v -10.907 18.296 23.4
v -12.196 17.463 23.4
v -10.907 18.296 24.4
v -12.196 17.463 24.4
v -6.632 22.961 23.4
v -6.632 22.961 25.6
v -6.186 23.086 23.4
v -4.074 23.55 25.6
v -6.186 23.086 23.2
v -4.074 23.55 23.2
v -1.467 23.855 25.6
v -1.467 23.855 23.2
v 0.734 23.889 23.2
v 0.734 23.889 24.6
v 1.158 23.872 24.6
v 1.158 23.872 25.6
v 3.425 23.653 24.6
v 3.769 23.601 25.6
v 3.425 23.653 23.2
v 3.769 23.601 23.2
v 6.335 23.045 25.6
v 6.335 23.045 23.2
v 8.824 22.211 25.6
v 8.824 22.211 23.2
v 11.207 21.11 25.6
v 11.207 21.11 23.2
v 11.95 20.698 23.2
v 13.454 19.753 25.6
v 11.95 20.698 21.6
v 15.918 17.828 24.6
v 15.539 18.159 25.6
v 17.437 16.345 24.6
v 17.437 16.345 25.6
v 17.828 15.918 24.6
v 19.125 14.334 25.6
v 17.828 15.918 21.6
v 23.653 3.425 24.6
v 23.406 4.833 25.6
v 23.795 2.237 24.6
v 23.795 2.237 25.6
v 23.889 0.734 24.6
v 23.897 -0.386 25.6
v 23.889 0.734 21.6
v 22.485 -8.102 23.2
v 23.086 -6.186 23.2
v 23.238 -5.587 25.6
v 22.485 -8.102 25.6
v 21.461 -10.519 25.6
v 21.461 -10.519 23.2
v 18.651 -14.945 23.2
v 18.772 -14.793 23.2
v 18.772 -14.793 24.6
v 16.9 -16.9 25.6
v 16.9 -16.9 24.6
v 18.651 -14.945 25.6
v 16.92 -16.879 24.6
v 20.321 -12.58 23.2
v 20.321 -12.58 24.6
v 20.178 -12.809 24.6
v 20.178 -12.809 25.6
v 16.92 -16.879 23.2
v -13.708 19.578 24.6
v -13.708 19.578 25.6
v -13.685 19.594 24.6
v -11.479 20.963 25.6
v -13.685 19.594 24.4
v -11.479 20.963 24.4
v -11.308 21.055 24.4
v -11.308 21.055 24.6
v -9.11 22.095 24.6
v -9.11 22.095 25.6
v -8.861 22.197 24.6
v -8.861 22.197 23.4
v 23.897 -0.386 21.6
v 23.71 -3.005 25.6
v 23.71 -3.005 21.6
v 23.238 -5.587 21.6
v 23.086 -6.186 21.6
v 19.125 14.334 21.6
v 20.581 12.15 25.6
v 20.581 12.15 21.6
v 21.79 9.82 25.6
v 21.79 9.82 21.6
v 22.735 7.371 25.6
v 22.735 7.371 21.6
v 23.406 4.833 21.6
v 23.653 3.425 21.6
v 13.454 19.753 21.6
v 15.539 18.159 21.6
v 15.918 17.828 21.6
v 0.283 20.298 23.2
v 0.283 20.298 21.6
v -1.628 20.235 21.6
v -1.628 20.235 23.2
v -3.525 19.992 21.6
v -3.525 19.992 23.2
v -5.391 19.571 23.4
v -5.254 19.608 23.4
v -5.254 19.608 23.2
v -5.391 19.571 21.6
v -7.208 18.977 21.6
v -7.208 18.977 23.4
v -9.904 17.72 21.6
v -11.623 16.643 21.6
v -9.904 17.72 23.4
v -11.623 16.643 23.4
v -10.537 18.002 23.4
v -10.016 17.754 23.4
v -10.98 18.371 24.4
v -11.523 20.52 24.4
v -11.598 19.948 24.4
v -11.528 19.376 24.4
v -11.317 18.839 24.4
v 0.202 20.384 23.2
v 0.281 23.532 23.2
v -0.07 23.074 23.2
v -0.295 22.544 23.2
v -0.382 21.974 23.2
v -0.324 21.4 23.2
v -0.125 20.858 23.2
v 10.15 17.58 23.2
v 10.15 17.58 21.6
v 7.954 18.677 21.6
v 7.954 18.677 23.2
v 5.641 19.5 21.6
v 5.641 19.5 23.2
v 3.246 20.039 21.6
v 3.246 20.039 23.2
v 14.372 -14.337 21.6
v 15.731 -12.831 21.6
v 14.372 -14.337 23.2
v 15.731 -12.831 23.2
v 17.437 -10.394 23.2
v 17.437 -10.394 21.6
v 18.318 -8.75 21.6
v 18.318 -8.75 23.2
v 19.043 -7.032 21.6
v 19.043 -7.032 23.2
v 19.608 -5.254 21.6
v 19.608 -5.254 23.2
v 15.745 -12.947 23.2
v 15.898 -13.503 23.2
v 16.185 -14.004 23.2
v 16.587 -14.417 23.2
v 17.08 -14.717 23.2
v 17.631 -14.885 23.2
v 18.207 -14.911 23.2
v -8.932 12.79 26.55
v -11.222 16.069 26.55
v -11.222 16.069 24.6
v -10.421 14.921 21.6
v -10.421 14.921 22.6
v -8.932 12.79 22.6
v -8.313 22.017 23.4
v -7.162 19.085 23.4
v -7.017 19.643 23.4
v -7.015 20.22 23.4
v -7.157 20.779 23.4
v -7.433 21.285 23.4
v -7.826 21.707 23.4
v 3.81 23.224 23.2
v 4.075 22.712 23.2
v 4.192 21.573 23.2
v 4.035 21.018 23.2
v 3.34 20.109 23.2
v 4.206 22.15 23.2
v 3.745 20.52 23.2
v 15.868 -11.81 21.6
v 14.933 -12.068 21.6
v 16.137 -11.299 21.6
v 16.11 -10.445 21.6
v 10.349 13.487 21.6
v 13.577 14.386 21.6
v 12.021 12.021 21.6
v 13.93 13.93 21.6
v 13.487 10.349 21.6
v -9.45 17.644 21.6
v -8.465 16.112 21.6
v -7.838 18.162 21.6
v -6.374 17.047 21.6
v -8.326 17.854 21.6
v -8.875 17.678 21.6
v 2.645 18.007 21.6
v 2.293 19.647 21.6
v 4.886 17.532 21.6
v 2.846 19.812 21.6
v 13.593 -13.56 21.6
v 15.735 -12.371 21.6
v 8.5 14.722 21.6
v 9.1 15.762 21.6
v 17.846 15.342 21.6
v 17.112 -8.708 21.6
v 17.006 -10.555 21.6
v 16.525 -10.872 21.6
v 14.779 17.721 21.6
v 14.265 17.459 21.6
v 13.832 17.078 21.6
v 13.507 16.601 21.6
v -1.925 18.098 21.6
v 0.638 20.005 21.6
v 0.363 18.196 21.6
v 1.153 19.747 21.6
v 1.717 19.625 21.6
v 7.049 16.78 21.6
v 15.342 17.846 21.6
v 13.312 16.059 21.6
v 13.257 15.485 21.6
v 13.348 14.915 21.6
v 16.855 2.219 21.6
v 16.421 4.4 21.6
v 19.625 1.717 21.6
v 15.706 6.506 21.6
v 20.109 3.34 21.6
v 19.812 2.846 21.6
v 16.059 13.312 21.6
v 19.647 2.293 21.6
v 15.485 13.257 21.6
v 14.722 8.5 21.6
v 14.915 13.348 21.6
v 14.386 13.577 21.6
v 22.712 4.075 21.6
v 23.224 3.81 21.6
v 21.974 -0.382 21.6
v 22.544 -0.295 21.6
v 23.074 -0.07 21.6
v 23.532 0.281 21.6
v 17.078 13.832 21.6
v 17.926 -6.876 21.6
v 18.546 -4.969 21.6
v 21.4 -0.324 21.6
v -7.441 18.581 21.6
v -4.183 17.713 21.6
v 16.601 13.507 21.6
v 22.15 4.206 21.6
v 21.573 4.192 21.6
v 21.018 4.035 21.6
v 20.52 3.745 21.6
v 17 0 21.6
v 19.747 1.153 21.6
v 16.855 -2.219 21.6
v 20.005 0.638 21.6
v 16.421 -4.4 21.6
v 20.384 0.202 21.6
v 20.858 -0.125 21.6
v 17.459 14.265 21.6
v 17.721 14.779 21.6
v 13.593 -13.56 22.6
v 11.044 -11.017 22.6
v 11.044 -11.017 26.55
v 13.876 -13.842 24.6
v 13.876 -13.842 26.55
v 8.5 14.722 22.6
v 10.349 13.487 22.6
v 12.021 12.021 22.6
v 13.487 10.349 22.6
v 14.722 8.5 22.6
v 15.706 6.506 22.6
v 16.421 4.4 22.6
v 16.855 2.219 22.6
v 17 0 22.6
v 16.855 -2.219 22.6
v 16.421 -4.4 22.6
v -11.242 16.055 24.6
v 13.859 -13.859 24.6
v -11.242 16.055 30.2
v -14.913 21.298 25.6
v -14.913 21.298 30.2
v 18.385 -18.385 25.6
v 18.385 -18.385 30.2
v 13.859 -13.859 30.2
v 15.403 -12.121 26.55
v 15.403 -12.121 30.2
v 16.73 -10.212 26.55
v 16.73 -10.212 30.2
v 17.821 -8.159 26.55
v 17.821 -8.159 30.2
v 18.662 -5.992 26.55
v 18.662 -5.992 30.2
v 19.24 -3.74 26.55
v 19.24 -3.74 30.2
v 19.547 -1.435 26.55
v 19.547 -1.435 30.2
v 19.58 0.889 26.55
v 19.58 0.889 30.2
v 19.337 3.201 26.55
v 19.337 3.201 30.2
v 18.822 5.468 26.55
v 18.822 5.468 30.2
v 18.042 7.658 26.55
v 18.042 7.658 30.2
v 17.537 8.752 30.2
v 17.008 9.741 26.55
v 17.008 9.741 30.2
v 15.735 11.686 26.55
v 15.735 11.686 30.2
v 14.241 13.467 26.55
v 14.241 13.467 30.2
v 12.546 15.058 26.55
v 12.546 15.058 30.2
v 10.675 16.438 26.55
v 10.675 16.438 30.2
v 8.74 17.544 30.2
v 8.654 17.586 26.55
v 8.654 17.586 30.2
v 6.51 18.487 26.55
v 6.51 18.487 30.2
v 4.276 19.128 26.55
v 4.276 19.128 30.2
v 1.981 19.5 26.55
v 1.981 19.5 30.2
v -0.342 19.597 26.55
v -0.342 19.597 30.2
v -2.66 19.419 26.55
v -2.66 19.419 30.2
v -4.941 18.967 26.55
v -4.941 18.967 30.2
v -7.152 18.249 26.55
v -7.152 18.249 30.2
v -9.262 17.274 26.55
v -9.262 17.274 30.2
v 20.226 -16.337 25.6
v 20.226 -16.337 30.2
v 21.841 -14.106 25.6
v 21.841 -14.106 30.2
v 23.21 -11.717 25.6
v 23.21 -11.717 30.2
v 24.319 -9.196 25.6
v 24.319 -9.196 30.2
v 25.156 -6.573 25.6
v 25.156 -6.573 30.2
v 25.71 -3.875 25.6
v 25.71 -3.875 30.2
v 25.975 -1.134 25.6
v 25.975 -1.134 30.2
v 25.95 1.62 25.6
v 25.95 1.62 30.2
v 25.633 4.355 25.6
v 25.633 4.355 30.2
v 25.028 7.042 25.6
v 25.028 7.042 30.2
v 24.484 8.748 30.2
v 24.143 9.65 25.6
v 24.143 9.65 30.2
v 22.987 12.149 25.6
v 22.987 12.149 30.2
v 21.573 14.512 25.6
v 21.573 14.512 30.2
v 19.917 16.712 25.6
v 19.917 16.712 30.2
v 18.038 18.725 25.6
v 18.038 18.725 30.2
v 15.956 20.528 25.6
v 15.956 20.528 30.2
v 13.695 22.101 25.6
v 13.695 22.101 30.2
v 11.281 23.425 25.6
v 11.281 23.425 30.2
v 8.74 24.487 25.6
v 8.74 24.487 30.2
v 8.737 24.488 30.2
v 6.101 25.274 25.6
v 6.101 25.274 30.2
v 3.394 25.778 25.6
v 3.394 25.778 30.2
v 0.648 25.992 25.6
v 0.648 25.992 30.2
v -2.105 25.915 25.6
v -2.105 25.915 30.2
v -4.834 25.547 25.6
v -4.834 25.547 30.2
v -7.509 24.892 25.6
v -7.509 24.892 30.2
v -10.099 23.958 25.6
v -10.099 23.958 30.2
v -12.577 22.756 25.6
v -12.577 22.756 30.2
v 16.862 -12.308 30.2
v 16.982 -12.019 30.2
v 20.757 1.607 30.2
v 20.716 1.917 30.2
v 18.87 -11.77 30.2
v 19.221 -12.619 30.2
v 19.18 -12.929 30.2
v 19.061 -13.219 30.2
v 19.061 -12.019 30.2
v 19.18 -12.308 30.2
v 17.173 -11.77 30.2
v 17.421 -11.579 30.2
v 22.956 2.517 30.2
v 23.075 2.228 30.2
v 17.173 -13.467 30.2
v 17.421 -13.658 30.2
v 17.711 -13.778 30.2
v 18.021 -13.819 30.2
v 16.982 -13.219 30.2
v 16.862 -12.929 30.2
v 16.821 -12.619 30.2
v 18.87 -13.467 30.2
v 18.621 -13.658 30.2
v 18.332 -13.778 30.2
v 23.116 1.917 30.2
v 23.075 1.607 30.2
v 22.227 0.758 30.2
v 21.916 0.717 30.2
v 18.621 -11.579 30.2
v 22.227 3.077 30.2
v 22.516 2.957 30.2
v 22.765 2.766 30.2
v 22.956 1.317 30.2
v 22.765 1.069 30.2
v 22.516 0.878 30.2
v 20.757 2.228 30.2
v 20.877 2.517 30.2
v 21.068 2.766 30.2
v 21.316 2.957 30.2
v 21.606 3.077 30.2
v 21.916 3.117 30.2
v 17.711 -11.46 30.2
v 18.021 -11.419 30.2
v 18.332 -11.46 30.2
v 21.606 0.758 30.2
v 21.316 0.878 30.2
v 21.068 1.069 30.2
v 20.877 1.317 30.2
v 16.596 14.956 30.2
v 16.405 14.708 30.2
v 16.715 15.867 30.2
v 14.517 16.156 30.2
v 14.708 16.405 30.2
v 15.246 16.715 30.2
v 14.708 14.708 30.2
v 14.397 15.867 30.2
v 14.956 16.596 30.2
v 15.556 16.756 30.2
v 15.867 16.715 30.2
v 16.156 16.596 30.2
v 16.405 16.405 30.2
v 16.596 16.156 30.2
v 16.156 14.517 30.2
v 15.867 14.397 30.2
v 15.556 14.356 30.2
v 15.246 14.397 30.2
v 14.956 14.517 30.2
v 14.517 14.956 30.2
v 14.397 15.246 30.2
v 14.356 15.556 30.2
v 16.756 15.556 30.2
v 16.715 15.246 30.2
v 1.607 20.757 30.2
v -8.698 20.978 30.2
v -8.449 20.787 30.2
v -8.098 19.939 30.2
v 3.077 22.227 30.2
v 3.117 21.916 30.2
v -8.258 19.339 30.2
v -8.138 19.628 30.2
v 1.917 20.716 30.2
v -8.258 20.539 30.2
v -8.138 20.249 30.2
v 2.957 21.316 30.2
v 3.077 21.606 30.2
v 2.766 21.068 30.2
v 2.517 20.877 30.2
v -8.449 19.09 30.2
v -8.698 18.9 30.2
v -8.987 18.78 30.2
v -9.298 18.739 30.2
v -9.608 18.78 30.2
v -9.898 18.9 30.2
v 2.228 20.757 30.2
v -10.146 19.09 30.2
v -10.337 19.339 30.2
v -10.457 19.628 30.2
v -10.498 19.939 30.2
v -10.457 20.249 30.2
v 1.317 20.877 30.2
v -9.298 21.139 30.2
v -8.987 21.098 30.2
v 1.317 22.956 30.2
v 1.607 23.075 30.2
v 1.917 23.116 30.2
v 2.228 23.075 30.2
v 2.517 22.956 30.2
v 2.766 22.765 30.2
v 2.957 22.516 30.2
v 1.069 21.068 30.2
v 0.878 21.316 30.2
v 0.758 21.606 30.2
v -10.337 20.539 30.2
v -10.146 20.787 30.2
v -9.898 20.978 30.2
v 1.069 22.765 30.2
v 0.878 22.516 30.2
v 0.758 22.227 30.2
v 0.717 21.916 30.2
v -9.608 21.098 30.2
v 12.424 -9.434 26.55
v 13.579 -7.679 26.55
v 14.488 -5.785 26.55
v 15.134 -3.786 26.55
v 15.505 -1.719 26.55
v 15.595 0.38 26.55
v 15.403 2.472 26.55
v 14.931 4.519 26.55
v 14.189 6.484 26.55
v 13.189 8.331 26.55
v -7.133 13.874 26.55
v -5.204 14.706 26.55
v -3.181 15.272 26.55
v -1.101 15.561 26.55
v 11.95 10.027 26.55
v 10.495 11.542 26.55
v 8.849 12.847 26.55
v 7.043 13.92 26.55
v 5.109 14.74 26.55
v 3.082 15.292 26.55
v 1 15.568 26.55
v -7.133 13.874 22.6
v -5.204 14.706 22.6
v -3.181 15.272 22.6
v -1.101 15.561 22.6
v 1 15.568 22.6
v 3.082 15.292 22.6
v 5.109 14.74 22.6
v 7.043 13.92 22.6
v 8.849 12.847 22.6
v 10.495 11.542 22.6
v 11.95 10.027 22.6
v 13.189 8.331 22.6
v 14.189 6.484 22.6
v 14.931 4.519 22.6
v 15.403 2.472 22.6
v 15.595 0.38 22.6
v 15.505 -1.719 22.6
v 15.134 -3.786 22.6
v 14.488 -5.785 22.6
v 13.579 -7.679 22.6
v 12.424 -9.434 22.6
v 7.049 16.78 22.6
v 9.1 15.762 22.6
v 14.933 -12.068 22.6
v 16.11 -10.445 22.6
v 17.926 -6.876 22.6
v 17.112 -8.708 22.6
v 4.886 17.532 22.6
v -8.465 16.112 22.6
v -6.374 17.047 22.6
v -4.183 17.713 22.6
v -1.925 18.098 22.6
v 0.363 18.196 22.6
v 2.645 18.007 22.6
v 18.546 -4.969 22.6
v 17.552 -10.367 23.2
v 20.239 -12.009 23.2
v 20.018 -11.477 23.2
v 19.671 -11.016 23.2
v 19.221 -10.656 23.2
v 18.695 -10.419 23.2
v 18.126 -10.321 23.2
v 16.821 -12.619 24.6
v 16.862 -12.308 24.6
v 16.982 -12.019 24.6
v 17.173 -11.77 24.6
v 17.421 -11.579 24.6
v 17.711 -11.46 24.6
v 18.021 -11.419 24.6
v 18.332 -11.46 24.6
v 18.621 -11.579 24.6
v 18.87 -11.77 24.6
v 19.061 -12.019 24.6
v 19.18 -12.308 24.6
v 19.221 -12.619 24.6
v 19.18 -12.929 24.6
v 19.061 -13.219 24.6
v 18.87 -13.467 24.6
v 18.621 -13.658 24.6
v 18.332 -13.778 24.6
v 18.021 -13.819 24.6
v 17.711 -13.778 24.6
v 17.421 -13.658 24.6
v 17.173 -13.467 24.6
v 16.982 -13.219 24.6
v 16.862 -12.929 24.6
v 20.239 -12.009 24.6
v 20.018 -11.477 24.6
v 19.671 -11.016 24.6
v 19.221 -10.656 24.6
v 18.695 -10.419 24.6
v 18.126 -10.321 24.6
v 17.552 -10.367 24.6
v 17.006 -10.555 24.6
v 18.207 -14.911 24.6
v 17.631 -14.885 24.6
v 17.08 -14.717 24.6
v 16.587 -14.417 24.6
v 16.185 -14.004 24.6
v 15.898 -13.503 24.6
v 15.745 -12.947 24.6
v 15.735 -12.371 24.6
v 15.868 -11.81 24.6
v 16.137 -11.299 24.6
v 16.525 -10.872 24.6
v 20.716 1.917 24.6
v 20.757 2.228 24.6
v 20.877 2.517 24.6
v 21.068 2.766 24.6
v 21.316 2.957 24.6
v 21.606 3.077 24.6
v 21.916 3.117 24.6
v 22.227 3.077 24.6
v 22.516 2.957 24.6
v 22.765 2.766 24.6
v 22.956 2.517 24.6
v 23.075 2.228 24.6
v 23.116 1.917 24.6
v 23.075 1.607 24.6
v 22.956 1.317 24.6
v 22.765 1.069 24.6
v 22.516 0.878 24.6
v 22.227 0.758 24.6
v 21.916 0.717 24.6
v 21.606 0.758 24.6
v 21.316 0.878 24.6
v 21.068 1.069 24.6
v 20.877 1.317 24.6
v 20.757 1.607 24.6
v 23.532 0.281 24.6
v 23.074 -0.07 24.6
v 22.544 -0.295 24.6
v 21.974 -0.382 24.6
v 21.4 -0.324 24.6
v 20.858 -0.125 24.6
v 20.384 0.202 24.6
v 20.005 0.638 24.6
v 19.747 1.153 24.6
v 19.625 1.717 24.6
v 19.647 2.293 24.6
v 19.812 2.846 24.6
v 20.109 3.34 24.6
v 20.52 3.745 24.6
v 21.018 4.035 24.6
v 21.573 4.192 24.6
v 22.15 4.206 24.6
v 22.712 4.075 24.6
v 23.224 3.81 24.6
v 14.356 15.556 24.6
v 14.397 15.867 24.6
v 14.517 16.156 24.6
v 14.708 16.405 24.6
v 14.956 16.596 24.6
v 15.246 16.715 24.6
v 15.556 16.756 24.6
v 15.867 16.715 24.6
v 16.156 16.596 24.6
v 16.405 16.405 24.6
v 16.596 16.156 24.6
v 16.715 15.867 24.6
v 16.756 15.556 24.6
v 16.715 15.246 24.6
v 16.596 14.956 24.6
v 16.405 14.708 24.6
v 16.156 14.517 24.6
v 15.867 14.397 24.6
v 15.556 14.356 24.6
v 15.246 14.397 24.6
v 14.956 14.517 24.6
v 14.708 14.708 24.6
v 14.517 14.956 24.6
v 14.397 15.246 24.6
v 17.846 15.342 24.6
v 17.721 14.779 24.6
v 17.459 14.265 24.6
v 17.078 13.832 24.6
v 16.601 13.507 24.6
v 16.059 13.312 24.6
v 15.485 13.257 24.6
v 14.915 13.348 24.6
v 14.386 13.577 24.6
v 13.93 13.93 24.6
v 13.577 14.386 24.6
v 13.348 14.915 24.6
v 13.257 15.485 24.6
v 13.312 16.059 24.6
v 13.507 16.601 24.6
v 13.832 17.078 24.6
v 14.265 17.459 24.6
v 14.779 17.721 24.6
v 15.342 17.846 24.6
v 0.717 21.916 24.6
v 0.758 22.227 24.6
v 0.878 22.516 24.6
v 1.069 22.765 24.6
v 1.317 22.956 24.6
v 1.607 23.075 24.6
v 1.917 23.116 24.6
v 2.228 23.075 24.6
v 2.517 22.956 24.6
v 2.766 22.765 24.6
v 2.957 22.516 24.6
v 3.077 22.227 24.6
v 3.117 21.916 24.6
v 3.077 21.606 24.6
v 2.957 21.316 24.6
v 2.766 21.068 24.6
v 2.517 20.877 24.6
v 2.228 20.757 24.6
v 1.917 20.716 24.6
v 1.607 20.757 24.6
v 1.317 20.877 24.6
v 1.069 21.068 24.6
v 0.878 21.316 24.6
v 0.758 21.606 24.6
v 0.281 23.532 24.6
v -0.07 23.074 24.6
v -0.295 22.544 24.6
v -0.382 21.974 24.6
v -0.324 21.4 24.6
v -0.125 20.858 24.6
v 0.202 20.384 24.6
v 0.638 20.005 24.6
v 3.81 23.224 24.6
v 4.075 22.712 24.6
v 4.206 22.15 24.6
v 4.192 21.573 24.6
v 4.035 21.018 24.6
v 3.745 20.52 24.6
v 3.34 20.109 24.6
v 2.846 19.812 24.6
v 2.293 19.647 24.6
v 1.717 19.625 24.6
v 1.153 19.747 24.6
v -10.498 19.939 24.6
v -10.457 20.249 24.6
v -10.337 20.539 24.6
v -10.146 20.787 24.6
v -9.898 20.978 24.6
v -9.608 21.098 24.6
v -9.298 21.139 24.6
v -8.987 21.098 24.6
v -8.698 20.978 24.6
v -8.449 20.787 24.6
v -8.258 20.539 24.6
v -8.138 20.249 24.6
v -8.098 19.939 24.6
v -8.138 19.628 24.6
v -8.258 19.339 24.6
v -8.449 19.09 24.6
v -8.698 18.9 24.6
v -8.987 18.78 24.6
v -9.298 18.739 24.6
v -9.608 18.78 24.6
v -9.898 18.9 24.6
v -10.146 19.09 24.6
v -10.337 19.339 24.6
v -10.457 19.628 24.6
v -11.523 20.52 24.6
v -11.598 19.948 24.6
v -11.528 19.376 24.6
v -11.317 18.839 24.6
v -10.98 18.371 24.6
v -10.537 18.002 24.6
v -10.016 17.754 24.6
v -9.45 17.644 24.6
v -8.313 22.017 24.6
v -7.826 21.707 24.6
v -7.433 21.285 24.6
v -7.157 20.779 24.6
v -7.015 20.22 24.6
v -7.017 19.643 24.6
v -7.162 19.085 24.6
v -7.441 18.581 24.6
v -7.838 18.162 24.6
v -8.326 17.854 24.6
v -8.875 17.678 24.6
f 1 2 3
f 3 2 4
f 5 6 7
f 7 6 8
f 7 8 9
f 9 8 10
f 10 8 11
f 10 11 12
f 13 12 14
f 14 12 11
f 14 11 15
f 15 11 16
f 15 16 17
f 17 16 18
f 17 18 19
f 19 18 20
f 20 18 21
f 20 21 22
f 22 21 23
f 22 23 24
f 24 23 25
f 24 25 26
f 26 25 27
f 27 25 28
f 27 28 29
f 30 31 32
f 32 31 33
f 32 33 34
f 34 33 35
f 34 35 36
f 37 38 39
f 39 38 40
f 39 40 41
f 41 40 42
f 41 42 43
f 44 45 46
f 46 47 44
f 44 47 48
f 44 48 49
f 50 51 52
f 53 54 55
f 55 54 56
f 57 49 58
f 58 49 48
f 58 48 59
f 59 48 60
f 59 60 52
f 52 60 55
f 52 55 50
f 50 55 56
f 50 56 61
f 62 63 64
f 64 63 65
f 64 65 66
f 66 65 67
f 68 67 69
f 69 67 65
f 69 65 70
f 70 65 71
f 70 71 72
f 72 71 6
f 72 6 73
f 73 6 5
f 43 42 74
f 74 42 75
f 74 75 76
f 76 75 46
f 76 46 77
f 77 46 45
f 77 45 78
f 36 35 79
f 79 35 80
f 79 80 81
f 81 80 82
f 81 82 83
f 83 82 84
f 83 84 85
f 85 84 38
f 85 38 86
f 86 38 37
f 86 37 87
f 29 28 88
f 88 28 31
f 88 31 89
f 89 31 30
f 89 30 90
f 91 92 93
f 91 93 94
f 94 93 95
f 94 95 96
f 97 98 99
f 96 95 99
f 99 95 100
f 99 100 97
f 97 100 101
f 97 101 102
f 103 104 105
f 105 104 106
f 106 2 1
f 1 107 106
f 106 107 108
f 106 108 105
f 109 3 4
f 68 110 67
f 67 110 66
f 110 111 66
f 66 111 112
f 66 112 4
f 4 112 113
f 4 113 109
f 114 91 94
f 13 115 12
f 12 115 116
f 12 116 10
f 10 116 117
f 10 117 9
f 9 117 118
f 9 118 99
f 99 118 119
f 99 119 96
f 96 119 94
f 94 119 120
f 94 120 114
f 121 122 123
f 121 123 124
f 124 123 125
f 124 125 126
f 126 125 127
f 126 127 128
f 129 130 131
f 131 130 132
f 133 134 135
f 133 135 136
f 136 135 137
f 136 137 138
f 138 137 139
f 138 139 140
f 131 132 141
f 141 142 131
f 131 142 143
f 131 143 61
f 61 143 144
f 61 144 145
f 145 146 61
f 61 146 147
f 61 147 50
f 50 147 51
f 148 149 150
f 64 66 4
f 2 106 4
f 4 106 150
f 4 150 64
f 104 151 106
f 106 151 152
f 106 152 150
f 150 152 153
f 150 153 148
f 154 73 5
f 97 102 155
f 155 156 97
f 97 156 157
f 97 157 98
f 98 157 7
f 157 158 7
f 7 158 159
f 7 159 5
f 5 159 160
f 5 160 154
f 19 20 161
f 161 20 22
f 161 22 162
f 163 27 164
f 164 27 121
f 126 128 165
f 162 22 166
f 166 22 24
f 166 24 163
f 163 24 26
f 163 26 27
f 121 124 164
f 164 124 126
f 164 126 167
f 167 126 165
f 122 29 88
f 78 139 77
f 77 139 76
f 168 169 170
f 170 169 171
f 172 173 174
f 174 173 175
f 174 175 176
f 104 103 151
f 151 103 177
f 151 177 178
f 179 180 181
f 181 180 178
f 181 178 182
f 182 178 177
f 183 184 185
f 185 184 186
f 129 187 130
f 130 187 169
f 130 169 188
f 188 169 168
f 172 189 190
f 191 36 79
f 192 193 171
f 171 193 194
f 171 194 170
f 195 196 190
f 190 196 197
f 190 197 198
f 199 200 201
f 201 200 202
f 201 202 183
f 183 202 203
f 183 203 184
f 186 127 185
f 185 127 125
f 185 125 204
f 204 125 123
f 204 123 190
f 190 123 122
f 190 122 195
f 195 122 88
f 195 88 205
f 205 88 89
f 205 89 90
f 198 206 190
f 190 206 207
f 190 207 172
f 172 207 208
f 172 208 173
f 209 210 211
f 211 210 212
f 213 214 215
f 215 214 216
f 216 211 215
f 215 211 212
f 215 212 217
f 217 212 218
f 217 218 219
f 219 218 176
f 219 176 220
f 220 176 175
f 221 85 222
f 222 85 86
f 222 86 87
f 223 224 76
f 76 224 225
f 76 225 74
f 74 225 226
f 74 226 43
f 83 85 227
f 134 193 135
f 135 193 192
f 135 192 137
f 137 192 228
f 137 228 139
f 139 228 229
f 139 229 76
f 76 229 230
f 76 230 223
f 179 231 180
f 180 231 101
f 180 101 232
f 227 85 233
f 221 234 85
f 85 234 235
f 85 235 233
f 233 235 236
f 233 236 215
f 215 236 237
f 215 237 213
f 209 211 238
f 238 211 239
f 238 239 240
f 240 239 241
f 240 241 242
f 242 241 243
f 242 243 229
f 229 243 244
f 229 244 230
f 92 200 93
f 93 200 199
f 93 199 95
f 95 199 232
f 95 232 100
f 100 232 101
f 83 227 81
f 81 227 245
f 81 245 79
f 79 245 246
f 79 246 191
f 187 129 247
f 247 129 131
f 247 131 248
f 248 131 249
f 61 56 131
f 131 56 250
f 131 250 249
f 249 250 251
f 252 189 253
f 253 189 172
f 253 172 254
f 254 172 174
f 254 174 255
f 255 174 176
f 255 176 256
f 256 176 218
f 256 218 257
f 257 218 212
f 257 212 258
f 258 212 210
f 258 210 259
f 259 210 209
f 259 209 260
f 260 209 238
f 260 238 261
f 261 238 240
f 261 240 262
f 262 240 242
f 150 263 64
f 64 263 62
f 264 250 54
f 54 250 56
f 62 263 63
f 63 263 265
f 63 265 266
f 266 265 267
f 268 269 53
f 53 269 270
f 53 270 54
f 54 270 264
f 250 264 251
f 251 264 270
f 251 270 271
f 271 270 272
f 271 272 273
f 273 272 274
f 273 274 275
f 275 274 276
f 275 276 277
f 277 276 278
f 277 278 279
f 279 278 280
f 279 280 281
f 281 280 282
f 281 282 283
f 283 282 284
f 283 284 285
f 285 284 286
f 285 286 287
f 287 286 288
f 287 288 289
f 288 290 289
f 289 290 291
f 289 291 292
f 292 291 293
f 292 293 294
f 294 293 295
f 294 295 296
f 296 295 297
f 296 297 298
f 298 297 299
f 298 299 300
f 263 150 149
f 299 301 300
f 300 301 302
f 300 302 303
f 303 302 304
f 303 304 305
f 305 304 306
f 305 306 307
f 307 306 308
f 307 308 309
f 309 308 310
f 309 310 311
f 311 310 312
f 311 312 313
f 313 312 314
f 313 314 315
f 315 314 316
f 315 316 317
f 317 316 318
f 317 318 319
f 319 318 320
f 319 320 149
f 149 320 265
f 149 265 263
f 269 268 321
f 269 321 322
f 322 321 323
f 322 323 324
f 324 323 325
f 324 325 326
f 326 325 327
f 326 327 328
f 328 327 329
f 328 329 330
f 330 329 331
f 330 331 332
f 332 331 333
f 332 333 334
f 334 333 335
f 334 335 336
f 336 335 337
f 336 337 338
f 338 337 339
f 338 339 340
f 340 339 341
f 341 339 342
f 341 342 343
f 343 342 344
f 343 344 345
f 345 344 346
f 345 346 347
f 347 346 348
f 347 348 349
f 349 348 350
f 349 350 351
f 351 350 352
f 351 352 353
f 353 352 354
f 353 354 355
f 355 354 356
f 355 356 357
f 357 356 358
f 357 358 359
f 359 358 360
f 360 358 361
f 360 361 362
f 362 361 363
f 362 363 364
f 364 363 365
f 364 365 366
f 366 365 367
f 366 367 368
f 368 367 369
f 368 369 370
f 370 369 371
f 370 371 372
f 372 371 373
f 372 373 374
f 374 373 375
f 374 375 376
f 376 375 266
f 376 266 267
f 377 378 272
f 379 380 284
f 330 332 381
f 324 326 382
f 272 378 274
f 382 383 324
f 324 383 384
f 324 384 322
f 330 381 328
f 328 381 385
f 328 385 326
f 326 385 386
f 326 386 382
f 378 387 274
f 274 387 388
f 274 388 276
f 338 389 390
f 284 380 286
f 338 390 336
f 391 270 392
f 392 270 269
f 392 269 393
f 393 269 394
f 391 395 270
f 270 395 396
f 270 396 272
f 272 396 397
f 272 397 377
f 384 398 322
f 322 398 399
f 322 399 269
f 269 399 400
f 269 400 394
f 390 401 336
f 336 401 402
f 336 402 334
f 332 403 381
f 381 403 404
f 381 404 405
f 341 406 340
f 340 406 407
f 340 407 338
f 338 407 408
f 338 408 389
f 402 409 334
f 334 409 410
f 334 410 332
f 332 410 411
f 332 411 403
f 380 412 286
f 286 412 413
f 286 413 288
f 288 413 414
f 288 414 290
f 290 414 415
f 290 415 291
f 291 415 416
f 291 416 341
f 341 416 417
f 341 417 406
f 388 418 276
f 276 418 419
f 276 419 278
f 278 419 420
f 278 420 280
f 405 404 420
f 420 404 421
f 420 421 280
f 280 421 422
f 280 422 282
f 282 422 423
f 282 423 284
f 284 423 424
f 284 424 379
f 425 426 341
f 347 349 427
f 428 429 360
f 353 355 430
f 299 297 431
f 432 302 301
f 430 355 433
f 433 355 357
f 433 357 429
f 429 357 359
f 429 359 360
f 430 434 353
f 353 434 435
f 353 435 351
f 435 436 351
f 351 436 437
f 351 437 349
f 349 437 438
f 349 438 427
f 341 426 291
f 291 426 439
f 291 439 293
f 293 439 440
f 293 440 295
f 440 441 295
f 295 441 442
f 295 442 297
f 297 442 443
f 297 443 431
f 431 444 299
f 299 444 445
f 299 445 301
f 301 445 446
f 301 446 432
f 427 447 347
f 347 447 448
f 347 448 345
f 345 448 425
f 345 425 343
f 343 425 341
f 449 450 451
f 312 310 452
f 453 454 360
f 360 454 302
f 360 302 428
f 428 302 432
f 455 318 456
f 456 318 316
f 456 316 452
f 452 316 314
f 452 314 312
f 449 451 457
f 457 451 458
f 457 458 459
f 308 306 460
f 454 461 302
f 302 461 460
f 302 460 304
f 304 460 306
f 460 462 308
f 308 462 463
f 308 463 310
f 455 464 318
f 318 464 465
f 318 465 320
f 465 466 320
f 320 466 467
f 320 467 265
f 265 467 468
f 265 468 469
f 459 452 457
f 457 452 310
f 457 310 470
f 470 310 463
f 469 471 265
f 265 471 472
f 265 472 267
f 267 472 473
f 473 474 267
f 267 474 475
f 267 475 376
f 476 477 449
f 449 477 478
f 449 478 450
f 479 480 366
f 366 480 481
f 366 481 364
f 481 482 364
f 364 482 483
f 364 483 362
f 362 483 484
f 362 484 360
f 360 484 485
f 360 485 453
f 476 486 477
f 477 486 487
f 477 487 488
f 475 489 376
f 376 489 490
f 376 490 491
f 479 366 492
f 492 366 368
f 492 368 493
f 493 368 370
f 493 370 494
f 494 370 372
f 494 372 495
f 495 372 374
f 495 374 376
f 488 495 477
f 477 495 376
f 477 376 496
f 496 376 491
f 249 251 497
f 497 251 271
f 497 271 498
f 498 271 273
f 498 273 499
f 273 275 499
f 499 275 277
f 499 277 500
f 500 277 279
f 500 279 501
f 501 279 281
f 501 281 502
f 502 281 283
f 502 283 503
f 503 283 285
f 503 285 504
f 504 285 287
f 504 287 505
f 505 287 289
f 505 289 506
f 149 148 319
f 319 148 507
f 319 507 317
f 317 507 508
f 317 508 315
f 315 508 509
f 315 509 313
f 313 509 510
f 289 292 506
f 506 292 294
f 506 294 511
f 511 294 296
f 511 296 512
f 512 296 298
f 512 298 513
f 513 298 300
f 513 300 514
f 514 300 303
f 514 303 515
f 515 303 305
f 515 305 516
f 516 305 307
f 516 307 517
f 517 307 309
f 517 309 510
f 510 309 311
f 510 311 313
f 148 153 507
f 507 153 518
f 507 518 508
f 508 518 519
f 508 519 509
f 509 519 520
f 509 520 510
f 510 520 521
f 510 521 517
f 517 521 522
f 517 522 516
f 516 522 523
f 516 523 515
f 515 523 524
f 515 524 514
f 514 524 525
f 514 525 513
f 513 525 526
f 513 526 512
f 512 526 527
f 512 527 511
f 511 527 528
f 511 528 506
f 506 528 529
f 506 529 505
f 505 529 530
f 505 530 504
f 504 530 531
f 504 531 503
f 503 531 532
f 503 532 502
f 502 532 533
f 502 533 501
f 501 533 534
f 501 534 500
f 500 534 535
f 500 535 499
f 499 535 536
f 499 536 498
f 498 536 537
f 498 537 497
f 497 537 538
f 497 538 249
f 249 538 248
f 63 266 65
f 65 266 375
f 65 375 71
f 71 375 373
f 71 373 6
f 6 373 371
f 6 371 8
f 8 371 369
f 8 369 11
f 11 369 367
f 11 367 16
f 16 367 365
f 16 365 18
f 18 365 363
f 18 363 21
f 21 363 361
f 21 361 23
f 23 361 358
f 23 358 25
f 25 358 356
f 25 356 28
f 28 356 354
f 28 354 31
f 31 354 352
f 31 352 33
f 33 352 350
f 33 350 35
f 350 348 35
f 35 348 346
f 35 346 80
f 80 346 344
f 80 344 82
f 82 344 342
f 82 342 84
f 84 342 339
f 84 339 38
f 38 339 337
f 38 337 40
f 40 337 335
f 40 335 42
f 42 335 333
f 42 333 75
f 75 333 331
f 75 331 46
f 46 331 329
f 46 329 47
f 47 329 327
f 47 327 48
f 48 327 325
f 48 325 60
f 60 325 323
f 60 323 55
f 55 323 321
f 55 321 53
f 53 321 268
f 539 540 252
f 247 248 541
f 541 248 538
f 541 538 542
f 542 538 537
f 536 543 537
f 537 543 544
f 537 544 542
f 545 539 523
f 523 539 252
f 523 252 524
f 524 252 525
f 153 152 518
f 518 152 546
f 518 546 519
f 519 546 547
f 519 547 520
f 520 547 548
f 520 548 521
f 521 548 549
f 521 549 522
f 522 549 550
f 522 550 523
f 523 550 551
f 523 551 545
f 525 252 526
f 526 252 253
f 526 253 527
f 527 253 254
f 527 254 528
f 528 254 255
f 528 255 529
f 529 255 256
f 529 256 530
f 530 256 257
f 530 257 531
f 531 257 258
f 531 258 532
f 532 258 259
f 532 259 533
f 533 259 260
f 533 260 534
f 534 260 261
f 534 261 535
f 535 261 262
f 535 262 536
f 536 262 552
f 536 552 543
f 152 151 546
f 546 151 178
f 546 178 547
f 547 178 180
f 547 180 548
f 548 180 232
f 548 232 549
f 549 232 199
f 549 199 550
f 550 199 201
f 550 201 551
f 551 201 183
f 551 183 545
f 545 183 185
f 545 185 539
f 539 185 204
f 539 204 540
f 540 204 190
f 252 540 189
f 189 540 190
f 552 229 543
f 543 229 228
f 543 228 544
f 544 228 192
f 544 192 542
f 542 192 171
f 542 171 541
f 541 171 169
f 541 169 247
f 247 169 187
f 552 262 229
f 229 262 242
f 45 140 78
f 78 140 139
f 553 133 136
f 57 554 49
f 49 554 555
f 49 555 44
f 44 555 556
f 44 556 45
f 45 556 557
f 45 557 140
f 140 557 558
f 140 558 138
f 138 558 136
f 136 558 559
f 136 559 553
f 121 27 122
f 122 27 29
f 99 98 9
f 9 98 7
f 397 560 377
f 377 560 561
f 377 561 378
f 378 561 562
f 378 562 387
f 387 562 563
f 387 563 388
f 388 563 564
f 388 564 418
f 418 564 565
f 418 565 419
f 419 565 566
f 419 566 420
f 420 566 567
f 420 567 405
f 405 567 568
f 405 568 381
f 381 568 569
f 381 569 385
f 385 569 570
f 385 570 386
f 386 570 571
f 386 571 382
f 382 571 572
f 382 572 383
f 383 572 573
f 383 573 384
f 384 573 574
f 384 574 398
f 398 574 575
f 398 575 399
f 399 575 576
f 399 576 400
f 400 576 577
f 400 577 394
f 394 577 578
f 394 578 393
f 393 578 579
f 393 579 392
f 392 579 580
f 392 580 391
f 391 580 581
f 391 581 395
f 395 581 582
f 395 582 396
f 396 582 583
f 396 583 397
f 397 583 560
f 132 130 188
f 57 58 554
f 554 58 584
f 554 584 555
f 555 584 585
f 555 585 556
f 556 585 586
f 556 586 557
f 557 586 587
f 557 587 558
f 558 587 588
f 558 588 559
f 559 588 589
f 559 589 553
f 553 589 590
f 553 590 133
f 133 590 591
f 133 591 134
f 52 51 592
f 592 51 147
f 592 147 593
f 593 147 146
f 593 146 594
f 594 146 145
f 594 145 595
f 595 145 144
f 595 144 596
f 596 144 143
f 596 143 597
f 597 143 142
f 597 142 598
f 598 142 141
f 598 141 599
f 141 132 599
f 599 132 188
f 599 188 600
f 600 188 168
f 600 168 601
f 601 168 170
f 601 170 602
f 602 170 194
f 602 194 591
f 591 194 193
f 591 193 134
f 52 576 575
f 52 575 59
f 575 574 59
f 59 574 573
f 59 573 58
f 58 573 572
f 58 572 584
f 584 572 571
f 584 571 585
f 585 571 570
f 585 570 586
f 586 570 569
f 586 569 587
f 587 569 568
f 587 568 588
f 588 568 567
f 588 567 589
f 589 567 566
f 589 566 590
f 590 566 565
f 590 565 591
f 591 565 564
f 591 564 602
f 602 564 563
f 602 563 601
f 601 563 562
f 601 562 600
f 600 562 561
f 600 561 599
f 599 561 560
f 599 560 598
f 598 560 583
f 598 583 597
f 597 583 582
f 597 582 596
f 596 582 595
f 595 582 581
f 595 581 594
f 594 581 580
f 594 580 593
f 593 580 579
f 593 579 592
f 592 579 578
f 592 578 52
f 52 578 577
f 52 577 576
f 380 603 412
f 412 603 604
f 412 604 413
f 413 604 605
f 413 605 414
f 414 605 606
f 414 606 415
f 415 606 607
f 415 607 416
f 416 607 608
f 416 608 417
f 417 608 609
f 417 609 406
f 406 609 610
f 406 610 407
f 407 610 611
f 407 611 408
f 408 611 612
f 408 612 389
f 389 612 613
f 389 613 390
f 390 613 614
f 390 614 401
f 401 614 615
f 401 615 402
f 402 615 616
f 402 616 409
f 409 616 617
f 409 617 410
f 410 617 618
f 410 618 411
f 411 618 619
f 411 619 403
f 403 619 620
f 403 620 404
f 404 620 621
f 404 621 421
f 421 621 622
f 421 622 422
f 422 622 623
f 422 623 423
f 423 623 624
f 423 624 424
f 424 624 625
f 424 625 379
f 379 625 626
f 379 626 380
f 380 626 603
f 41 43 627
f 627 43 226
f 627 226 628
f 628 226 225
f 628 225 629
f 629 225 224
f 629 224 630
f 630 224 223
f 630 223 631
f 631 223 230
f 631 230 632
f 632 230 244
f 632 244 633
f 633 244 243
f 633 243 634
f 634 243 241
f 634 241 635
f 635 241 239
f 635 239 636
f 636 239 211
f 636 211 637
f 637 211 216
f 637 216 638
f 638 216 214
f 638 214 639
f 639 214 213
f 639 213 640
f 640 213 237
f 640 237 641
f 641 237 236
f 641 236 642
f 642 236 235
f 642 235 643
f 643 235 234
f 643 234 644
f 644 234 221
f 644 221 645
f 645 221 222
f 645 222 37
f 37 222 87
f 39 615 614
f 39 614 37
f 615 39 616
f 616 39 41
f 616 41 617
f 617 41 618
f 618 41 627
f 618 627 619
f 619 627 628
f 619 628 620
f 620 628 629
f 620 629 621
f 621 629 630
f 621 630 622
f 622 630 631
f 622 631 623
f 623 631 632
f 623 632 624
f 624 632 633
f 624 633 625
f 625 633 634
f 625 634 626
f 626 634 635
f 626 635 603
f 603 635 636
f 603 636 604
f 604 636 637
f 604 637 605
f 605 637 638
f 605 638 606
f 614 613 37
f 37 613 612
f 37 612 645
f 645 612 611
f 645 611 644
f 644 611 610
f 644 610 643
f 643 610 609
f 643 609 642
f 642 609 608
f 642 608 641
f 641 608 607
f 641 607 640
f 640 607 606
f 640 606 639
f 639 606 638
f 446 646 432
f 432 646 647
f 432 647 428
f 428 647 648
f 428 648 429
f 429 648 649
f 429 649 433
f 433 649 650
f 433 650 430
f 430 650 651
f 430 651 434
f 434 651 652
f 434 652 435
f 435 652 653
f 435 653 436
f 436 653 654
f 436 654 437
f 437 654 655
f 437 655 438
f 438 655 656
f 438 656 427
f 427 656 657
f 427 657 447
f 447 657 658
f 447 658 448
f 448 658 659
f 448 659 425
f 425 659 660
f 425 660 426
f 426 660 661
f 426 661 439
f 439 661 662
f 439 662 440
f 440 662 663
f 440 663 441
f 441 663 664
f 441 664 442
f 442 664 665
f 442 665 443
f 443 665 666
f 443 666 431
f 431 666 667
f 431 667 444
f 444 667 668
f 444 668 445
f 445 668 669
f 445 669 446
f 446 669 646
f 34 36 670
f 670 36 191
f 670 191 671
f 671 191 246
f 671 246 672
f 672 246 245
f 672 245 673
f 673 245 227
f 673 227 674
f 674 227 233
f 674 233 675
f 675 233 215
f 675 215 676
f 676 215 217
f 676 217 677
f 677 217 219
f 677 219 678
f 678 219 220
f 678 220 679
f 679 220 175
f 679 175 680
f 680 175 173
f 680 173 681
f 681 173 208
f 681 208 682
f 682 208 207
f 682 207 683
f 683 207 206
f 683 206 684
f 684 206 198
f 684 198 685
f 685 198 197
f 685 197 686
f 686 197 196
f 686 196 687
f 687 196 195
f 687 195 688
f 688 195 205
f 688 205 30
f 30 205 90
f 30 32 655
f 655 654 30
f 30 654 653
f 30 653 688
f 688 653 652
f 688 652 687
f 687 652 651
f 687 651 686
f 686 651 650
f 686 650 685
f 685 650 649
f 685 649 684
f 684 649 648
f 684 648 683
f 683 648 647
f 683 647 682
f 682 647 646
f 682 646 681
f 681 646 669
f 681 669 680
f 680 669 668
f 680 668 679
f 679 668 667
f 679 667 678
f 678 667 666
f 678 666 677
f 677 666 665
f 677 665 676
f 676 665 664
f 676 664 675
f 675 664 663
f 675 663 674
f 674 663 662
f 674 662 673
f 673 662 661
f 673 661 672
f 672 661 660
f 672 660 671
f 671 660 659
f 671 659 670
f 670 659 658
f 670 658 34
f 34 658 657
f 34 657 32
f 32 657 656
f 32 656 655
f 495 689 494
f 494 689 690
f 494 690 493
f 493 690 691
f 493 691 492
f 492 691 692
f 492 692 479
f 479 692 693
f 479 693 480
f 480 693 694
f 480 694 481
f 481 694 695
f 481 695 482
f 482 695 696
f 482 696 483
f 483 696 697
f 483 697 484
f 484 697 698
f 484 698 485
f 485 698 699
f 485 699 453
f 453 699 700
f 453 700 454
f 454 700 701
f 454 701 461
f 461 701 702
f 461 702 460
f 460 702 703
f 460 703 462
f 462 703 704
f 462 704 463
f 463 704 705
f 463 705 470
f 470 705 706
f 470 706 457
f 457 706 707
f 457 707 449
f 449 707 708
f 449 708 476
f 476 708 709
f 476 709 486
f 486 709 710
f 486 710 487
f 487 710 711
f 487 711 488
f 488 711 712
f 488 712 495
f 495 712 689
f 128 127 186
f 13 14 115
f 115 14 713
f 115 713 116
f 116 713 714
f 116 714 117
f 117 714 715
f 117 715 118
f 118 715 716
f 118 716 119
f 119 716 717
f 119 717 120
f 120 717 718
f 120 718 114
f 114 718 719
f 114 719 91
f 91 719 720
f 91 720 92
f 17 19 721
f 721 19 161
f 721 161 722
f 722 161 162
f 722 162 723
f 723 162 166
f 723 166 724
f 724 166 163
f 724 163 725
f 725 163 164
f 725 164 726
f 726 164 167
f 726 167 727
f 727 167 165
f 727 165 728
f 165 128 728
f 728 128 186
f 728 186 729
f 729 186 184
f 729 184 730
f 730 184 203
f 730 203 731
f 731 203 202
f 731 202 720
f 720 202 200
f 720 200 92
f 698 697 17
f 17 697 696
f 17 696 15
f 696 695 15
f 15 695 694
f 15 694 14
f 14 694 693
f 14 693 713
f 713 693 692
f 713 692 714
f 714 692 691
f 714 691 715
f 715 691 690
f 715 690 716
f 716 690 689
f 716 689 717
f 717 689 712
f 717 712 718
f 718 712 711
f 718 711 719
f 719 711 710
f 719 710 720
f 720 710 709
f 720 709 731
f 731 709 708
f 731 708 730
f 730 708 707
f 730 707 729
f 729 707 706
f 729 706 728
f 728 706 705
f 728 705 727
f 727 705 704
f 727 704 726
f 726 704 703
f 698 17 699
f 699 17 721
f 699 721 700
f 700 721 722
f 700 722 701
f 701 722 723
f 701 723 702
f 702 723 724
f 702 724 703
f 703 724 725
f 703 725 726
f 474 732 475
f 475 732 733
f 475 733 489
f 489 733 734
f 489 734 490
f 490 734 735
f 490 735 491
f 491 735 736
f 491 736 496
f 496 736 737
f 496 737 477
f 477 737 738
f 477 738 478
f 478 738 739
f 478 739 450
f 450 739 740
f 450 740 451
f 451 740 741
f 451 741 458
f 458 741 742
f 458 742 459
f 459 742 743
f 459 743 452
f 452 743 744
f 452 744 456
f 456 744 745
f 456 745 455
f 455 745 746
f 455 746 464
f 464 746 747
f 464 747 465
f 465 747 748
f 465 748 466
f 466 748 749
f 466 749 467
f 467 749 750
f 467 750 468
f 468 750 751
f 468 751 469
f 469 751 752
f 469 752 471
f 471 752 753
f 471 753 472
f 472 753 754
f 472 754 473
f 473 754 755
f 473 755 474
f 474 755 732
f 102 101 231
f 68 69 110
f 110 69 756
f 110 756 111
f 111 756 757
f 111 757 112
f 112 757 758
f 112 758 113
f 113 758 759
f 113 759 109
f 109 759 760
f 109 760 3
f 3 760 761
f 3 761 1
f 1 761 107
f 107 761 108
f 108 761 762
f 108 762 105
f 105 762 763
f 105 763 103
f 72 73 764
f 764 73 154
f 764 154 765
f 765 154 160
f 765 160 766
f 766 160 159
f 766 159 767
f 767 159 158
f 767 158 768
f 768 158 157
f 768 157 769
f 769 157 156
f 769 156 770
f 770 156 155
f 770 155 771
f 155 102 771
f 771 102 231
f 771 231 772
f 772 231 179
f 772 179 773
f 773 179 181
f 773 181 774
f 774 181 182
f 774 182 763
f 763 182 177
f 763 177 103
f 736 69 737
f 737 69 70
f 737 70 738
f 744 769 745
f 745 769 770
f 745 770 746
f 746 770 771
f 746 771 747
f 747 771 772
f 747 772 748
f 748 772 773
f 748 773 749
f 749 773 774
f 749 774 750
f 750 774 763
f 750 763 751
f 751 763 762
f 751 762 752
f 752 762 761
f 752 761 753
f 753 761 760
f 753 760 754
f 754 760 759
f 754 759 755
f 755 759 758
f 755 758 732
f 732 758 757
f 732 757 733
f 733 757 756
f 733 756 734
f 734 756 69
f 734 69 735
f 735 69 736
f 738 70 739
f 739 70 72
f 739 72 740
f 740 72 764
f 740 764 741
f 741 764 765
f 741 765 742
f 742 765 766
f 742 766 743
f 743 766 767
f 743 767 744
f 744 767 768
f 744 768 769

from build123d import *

# Parameters (mm, degrees)
BOSS_1_DEPTH  = 5.6
BOSS_2_DEPTH  = 4.95
CUT_3_DEPTH   = 1.1
CUT_4_DEPTH   = 1.1
CUT_5_DEPTH   = 1.1
CUT_6_DEPTH   = 1.1
CUT_7_DEPTH   = 1.7
CUT_8_DEPTH   = 1.7
CUT_9_DEPTH   = 1.9
CUT_10_DEPTH  = 2.9
S_HOLE11_R    = 1.2
HOLE_11_DEPTH = 8.8
S_HOLE12_R    = 2.3
HOLE_12_DEPTH = 3.1
S_HOLE13_R    = 1.2
HOLE_13_DEPTH = 8.8
S_HOLE14_R    = 2.3
HOLE_14_DEPTH = 3.1
S_HOLE15_R    = 1.2
HOLE_15_DEPTH = 8.8
S_HOLE16_R    = 2.3
HOLE_16_DEPTH = 3.1
S_HOLE17_R    = 1.2
HOLE_17_DEPTH = 8.8
S_HOLE18_R    = 2.3
HOLE_18_DEPTH = 3.1
S_HOLE19_R    = 1.2
HOLE_19_DEPTH = 8.8
S_HOLE20_R    = 2.3
HOLE_20_DEPTH = 3.1


with BuildPart() as part:
    # S_prism1 → Boss_1 (new body)
    with BuildSketch(Plane.XY.offset(24.6)):
        with BuildLine():
            Line((-14.912987345, 21.297953152), (-11.242098152, 16.055380068))
            ThreePointArc((-11.242098152, 16.055380068), (15.014471085, 12.59863715), (13.859292911, -13.859292911))
            Line((13.859292911, -13.859292911), (18.384776311, -18.384776311))
            ThreePointArc((18.384776311, -18.384776311), (19.917155521, 16.712477852), (-14.912987345, 21.297953152))
        make_face()
    extrude(amount=BOSS_1_DEPTH)

    # S_prism2 → Boss_2 (add)
    with BuildSketch(Plane.XY.offset(21.6)):
        with BuildLine():
            Line((-13.68454789, 19.594467307), (-8.932173518, 12.789694142))
            ThreePointArc((-8.932173518, 12.789694142), (11.950293313, 10.027486711), (11.044334296, -11.017380812))
            Line((11.044334296, -11.017380812), (16.920486517, -16.879192399))
            ThreePointArc((16.920486517, -16.879192399), (18.308462191, 15.362623872), (-13.68454789, 19.594467307))
        make_face()
    extrude(amount=BOSS_2_DEPTH)

    # S_pcut3 → Cut_3 (cut)
    with BuildSketch(Plane.XY.offset(24.5)):
        with BuildLine():
            Line((-15.39997361, 21.196245253), (-14.04806753, 19.335506166))
            ThreePointArc((-14.04806753, 19.335506166), (18.308462191, 15.362623872), (16.602335054, -17.192221228))
            Line((16.602335054, -17.192221228), (18.200049306, -18.846702769))
            ThreePointArc((18.200049306, -18.846702769), (20.07036441, 16.841035374), (-15.39997361, 21.196245253))
        make_face()
    extrude(amount=CUT_3_DEPTH, mode=Mode.SUBTRACT)

    # S_pcut4 → Cut_4 (cut)
    with BuildSketch(Plane.XY.offset(21.5)):
        with BuildLine():
            Line((-9.992349289, 13.753288904), (-9.110671411, 12.539763413))
            ThreePointArc((-9.110671411, 12.539763413), (11.873688868, 9.96320795), (10.767204742, -11.149766905))
            Line((10.767204742, -11.149766905), (11.809192298, -12.228776606))
            ThreePointArc((11.809192298, -12.228776606), (13.022755533, 10.927389365), (-9.992349289, 13.753288904))
        make_face()
    extrude(amount=CUT_4_DEPTH, mode=Mode.SUBTRACT)

    # S_pcut5 → Cut_5 (cut)
    with BuildSketch(Plane.XY.offset(21.5)):
        with BuildLine():
            Line((-10.697691592, 14.724109298), (-9.110671411, 12.539763413))
            ThreePointArc((-9.110671411, 12.539763413), (-0.811207322, 15.478757789), (7.75, 13.423393759))
            Line((7.75, 13.423393759), (9.1, 15.761662349))
            ThreePointArc((9.1, 15.761662349), (-0.952514404, 18.175057533), (-10.697691592, 14.724109298))
        make_face()
    extrude(amount=CUT_5_DEPTH, mode=Mode.SUBTRACT)

    # S_pcut6 → Cut_6 (cut)
    with BuildSketch(Plane.XY.offset(21.5)):
        with BuildLine():
            Line((18.545775865, -4.969325666), (14.971850307, -4.011695199))
            ThreePointArc((14.971850307, -4.011695199), (13.355251987, -7.866844626), (10.767204742, -11.149766905))
            Line((10.767204742, -11.149766905), (13.337440713, -13.811324167))
            ThreePointArc((13.337440713, -13.811324167), (16.54327988, -9.744736569), (18.545775865, -4.969325666))
        make_face()
    extrude(amount=CUT_6_DEPTH, mode=Mode.SUBTRACT)

    # S_pcut7 → Cut_7 (cut)
    with BuildSketch(Plane.XY.offset(21.5)):
        with BuildLine():
            Line((25.307256649, -6.781058982), (19.608294274, -5.254026616))
            ThreePointArc((19.608294274, -5.254026616), (17.491071957, -10.303028768), (14.10156492, -14.602597947))
            Line((14.10156492, -14.602597947), (18.200049306, -18.846702769))
            ThreePointArc((18.200049306, -18.846702769), (22.574684004, -13.29750511), (25.307256649, -6.781058982))
        make_face()
    extrude(amount=CUT_7_DEPTH, mode=Mode.SUBTRACT)

    # S_pcut8 → Cut_8 (cut)
    with BuildSketch(Plane.XY.offset(21.5)):
        with BuildLine():
            Line((-15.39997361, 21.196245253), (-11.932040622, 16.423044986))
            ThreePointArc((-11.932040622, 16.423044986), (-1.062419912, 20.272179556), (10.15, 17.580315697))
            Line((10.15, 17.580315697), (13.1, 22.689865579))
            ThreePointArc((13.1, 22.689865579), (-1.371202054, 26.164093811), (-15.39997361, 21.196245253))
        make_face()
    extrude(amount=CUT_8_DEPTH, mode=Mode.SUBTRACT)

    # S_pcut9 → Cut_9 (cut)
    with BuildSketch(Plane.XY.offset(21.5)):
        with BuildLine():
            Line((-15.39997361, 21.196245253), (-11.932040622, 16.423044986))
            ThreePointArc((-11.932040622, 16.423044986), (-8.739375265, 18.322481272), (-5.254026616, 19.608294274))
            Line((-5.254026616, 19.608294274), (-6.781058982, 25.307256649))
            ThreePointArc((-6.781058982, 25.307256649), (-11.279390736, 23.64773445), (-15.39997361, 21.196245253))
        make_face()
    extrude(amount=CUT_9_DEPTH, mode=Mode.SUBTRACT)

    # S_pcut10 → Cut_10 (cut)
    with BuildSketch(Plane.XY.offset(21.5)):
        with BuildLine():
            Line((-15.39997361, 21.196245253), (-12.519825874, 17.23206198))
            ThreePointArc((-12.519825874, 17.23206198), (-10.326444911, 18.629399762), (-7.97912044, 19.749016102))
            Line((-7.97912044, 19.749016102), (-9.814692747, 24.29221699))
            ThreePointArc((-9.814692747, 24.29221699), (-12.70201205, 22.915036327), (-15.39997361, 21.196245253))
        make_face()
    extrude(amount=CUT_10_DEPTH, mode=Mode.SUBTRACT)

    # S_hole11 → Hole_11 (cut)
    with BuildSketch(Plane.XY.offset(21.5)):
        with Locations((18.021344974, -12.6186816)):
            Circle(S_HOLE11_R)
    extrude(amount=HOLE_11_DEPTH, mode=Mode.SUBTRACT)

    # S_hole12 → Hole_12 (cut)
    with BuildSketch(Plane.XY.offset(21.5)):
        with Locations((18.021344974, -12.6186816)):
            Circle(S_HOLE12_R)
    extrude(amount=HOLE_12_DEPTH, mode=Mode.SUBTRACT)

    # S_hole13 → Hole_13 (cut)
    with BuildSketch(Plane.XY.offset(21.5)):
        with Locations((21.916283358, 1.91742634)):
            Circle(S_HOLE13_R)
    extrude(amount=HOLE_13_DEPTH, mode=Mode.SUBTRACT)

    # S_hole14 → Hole_14 (cut)
    with BuildSketch(Plane.XY.offset(21.5)):
        with Locations((21.916283358, 1.91742634)):
            Circle(S_HOLE14_R)
    extrude(amount=HOLE_14_DEPTH, mode=Mode.SUBTRACT)

    # S_hole15 → Hole_15 (cut)
    with BuildSketch(Plane.XY.offset(21.5)):
        with Locations((15.556349186, 15.556349186)):
            Circle(S_HOLE15_R)
    extrude(amount=HOLE_15_DEPTH, mode=Mode.SUBTRACT)

    # S_hole16 → Hole_16 (cut)
    with BuildSketch(Plane.XY.offset(21.5)):
        with Locations((15.556349186, 15.556349186)):
            Circle(S_HOLE16_R)
    extrude(amount=HOLE_16_DEPTH, mode=Mode.SUBTRACT)

    # S_hole17 → Hole_17 (cut)
    with BuildSketch(Plane.XY.offset(21.5)):
        with Locations((1.91742634, 21.916283358)):
            Circle(S_HOLE17_R)
    extrude(amount=HOLE_17_DEPTH, mode=Mode.SUBTRACT)

    # S_hole18 → Hole_18 (cut)
    with BuildSketch(Plane.XY.offset(21.5)):
        with Locations((1.91742634, 21.916283358)):
            Circle(S_HOLE18_R)
    extrude(amount=HOLE_18_DEPTH, mode=Mode.SUBTRACT)

    # S_hole19 → Hole_19 (cut)
    with BuildSketch(Plane.XY.offset(21.5)):
        with Locations(Location((-9.297601758, 19.938771315, 0), (0, 0, 241.964907162))):
            Circle(S_HOLE19_R)
    extrude(amount=HOLE_19_DEPTH, mode=Mode.SUBTRACT)

    # S_hole20 → Hole_20 (cut)
    with BuildSketch(Plane.XY.offset(21.5)):
        with Locations((-9.297601758, 19.938771315)):
            Circle(S_HOLE20_R)
    extrude(amount=HOLE_20_DEPTH, mode=Mode.SUBTRACT)


solid = part.part
